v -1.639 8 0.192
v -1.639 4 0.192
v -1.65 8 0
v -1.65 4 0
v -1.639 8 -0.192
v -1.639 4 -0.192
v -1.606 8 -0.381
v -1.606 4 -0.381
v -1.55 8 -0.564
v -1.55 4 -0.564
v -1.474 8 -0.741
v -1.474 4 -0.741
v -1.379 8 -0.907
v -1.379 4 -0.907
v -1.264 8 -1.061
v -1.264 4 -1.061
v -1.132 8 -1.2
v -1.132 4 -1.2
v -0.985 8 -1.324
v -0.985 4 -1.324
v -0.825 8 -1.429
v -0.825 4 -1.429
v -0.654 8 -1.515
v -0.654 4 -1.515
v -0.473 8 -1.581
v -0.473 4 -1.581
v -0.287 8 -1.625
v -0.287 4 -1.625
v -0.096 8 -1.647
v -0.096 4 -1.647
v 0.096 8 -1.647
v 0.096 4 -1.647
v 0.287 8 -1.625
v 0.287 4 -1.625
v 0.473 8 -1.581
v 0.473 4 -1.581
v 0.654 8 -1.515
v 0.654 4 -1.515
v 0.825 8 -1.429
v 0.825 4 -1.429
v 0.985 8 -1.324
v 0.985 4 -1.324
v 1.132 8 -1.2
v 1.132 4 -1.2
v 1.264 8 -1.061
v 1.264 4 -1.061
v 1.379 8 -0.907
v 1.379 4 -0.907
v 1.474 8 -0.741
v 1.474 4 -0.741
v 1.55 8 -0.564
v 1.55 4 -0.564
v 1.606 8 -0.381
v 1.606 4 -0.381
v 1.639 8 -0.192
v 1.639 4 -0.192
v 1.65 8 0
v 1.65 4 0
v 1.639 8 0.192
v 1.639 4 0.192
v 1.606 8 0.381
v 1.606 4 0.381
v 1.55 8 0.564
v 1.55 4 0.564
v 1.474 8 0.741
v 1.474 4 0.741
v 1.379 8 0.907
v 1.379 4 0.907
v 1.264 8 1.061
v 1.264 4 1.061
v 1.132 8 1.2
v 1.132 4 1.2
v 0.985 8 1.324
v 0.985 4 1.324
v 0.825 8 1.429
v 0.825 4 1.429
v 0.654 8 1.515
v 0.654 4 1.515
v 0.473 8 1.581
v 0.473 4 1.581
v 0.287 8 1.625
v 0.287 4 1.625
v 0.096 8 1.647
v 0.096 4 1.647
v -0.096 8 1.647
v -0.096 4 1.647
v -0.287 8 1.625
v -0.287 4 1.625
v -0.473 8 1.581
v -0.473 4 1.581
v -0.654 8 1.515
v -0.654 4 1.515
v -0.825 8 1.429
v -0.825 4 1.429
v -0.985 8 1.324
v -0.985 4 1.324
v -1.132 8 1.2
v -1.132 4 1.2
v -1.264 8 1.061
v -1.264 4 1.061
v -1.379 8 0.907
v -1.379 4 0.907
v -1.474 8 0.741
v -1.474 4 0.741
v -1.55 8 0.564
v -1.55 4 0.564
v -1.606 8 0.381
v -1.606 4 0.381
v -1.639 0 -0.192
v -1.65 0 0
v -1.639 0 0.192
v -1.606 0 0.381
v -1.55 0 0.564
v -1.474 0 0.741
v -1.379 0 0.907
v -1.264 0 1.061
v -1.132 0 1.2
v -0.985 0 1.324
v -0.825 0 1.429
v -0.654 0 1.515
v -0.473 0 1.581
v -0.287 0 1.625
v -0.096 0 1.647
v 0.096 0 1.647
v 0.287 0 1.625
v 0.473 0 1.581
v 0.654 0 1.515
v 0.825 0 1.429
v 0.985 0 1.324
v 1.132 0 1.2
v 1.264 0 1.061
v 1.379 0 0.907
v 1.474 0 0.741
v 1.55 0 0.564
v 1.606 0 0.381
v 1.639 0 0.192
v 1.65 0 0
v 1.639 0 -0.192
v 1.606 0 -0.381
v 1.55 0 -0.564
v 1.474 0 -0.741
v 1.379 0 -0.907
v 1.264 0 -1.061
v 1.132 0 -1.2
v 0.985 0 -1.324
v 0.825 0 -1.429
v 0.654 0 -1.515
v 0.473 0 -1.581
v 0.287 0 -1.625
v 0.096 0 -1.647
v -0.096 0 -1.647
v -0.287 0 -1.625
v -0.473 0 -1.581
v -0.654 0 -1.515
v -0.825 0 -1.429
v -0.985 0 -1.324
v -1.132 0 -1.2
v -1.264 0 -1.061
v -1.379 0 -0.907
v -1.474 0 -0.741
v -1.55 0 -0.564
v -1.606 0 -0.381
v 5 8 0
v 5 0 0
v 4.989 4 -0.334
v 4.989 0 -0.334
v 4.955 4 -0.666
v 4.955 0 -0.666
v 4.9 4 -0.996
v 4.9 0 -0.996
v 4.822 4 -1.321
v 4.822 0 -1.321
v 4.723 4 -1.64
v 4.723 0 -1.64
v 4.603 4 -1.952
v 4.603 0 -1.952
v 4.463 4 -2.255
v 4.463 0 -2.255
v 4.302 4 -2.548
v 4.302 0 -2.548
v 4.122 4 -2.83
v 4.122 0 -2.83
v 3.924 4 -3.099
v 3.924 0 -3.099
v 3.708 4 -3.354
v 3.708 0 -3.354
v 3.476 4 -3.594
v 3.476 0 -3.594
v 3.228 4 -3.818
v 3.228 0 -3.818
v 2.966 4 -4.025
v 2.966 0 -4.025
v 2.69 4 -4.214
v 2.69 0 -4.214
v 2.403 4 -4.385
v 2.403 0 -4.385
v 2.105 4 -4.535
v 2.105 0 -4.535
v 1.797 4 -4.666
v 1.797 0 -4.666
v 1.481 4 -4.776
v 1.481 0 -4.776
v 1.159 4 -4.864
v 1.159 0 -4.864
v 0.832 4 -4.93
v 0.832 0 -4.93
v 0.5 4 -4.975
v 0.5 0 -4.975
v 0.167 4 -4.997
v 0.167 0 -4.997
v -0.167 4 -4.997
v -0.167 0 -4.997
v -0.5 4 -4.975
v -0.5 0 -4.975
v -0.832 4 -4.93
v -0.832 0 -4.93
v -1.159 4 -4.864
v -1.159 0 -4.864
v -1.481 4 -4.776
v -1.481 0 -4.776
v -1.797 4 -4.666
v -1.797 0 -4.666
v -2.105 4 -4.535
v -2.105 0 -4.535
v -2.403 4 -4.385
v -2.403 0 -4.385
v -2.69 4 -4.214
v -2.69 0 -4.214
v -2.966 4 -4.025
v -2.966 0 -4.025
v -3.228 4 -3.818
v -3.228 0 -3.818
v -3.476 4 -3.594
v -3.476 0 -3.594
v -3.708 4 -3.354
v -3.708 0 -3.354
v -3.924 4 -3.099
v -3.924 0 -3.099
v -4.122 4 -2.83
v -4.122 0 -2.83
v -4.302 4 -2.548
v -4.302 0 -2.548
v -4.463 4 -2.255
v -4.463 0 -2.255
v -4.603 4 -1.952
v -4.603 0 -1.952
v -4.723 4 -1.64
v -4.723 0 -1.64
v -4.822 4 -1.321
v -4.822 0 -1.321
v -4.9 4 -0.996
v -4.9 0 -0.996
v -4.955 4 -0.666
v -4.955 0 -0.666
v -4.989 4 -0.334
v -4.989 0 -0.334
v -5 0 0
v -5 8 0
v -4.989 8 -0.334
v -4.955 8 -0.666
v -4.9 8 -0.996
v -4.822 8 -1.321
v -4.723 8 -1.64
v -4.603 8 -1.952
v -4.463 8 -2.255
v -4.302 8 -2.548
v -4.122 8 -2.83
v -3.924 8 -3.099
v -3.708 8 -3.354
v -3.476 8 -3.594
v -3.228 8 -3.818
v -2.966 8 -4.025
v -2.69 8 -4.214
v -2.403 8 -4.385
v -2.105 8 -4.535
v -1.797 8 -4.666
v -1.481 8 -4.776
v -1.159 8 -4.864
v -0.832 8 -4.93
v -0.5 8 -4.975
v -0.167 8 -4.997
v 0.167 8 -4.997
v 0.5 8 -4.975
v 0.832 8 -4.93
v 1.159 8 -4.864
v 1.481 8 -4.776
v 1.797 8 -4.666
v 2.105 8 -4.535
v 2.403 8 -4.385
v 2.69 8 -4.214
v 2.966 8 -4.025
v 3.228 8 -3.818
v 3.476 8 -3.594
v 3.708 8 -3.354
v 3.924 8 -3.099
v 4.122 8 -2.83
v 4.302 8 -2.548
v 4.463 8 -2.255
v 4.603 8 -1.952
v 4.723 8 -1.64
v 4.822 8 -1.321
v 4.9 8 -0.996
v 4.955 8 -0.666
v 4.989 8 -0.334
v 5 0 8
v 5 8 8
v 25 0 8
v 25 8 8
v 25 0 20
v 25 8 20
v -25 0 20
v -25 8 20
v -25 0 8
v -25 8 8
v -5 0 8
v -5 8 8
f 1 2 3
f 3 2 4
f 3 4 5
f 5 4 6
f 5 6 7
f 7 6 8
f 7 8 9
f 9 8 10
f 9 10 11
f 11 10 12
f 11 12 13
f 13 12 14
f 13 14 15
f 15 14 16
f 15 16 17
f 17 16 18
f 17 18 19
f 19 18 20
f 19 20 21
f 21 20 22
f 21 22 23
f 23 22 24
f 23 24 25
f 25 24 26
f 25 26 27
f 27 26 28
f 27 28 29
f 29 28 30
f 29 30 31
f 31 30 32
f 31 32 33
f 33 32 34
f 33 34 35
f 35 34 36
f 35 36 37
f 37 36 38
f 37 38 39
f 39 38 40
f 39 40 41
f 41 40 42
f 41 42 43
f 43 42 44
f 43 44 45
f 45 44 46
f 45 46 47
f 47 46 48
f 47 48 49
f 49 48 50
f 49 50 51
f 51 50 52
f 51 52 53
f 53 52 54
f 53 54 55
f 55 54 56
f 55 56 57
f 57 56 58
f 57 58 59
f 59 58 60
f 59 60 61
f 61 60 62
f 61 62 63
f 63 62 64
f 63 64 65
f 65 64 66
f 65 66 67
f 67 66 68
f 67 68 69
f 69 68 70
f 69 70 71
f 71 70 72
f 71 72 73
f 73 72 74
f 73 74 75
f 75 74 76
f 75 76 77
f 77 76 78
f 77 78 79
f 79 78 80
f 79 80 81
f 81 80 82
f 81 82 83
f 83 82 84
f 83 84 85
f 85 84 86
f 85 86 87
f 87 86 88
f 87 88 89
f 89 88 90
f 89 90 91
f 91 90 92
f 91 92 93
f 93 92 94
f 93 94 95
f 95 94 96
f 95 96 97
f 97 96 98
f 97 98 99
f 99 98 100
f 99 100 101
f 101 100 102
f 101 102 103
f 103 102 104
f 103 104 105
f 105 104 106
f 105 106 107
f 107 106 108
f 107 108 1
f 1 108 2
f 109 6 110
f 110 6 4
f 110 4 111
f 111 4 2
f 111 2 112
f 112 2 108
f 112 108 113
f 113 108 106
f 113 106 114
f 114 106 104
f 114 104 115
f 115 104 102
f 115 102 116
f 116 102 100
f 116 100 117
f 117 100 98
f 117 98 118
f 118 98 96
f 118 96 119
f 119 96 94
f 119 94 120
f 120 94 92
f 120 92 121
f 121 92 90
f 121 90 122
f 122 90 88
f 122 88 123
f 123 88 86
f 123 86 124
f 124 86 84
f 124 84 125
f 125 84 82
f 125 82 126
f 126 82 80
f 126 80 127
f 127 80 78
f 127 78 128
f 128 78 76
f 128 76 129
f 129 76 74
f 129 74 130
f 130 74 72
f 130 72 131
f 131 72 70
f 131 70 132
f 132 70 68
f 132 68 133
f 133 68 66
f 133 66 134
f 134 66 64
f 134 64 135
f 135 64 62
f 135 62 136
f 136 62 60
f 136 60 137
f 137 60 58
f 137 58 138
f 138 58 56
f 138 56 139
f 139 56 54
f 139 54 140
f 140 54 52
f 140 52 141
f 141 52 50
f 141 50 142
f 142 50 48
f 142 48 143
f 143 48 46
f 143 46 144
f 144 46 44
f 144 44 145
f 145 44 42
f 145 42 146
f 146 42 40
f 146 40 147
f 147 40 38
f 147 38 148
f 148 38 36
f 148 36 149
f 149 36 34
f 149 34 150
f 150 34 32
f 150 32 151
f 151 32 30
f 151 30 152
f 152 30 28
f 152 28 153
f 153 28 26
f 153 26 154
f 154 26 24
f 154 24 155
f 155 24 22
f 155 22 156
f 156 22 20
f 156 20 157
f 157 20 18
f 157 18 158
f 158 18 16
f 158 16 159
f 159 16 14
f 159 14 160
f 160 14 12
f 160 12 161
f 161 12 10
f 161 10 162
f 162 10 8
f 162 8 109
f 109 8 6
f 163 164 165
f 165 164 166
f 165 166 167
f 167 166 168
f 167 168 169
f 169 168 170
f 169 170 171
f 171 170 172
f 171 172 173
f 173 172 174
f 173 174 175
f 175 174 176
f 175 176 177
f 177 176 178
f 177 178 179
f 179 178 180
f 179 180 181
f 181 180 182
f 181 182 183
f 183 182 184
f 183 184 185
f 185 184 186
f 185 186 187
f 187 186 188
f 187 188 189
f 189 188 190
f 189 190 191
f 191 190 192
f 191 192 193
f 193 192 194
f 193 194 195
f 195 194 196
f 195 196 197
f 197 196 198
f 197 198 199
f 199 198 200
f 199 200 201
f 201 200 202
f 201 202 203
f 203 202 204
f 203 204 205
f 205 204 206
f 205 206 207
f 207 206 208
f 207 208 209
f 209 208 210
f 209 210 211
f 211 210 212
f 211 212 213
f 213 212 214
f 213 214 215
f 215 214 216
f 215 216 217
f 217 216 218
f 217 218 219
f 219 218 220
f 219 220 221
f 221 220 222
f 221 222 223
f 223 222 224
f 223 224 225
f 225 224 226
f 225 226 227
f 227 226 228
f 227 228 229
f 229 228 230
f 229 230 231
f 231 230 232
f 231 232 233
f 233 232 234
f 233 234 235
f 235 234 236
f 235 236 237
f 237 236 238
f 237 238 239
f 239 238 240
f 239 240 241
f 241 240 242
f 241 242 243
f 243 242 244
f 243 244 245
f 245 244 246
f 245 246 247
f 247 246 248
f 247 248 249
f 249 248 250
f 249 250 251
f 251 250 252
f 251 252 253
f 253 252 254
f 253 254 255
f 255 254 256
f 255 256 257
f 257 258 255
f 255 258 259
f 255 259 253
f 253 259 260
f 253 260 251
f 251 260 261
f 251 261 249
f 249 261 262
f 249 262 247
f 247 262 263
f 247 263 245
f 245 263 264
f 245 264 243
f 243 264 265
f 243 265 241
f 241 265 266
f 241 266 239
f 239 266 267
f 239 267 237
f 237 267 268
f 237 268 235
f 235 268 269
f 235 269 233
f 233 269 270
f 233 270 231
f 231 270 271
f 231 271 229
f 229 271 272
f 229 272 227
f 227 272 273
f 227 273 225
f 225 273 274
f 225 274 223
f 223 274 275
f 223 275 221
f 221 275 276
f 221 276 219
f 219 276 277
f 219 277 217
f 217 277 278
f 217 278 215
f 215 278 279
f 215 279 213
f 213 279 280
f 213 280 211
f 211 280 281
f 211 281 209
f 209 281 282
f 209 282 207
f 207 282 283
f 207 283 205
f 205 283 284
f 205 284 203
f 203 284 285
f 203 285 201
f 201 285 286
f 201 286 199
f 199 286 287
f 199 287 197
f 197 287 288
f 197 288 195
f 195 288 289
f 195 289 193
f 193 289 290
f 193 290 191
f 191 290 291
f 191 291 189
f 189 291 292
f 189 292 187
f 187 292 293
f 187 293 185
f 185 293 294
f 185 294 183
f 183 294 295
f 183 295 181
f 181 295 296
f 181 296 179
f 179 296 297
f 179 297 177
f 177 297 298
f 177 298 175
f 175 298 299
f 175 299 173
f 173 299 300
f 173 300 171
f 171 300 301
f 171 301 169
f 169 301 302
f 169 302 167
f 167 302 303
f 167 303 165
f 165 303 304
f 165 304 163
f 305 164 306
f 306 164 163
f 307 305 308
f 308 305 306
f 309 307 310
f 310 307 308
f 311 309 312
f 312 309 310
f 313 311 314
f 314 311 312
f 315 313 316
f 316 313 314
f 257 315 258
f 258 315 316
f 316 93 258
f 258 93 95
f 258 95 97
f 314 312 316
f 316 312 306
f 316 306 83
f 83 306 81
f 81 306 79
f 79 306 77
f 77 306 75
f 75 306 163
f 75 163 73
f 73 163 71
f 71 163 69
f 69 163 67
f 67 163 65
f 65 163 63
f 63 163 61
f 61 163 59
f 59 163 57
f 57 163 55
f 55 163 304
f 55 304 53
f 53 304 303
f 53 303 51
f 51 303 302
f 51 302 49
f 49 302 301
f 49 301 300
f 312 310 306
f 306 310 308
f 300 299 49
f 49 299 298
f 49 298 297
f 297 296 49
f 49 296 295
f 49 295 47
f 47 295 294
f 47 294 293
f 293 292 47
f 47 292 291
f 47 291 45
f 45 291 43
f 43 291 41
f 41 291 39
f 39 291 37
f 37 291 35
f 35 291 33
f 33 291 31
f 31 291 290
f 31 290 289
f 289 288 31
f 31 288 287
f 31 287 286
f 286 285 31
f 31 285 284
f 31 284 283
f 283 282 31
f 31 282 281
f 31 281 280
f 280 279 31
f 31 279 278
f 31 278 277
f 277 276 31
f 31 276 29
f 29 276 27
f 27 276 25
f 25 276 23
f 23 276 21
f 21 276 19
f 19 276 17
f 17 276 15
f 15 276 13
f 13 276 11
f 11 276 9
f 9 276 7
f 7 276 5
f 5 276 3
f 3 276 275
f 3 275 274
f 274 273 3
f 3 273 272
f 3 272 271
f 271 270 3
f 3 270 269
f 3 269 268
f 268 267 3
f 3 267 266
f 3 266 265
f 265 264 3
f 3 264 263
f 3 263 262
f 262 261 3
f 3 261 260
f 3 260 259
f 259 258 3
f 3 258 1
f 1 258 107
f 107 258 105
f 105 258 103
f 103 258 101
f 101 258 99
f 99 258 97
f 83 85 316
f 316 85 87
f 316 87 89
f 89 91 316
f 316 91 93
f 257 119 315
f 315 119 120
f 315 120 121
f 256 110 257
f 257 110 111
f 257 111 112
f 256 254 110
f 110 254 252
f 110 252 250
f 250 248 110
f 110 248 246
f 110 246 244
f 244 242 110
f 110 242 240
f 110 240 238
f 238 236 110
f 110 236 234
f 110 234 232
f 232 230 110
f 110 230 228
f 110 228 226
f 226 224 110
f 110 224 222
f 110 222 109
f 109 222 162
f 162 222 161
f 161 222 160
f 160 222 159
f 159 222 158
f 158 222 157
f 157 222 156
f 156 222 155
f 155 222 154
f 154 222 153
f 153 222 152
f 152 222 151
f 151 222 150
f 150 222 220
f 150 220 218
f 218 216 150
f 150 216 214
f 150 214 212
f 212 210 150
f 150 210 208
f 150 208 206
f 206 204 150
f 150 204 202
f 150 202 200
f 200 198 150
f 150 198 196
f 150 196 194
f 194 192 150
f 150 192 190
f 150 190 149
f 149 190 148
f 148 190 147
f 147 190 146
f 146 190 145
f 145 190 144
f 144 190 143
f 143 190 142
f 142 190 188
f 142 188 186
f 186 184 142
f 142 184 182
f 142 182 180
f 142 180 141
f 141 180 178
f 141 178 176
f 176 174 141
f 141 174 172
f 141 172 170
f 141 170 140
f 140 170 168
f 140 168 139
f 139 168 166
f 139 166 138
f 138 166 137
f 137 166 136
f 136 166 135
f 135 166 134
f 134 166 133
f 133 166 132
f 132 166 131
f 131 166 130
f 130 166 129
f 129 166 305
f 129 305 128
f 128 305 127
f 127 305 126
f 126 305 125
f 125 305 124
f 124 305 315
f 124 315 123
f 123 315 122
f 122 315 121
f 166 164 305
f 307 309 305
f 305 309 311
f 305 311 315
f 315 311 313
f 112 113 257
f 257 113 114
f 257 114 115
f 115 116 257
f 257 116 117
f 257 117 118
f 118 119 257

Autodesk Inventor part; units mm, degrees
ref_plane "YZ Plane" through (0, 0, 0) normal (1, 0, 0) x (0, 1, 0)
ref_plane "XZ Plane" through (0, 0, 0) normal (0, 1, 0) x (-1, 0, 0)
ref_plane "XY Plane" through (0, 0, 0) normal (0, 0, 1) x (1, 0, 0)
sketch "Sketch1" plane through (0, 0, 0) normal (0, 1, 0) x (-1, 0, 0)
  circle A0 centre (0, 0) radius 1.65
  line L0 (5, -5) -> (-5, -5)
  line L1 (-5, -5) -> (-5, 20)
  line L2 (-5, 20) -> (5, 20)
  line L3 (5, 20) -> (5, -5)
  circle A1 centre (0, 0) radius 5
  line L4 (25, 8) -> (-25, 8)
  line L5 (-25, 8) -> (-25, 20)
  line L6 (-25, 20) -> (25, 20)
  line L7 (25, 20) -> (25, 8)
  point P0 (-5, 0)
  point P1 (5, 0)
  point P2 (5, 8)
  point P3 (-5, 8)
  dimension "d0" = 3.3
  dimension "d1" = 10
  dimension "d2" = 20
  dimension "d5" = 12
  dimension "d6" = 20
  dimension "d7" = 20
extrude "Extrusion1" add sketch "Sketch1" along normal blind 8 contours A1 | A1 L1 L4 L3 | L4 L1 L2 L3 | L3 L6 L7 L4 | L4 L5 L6 L1
properties part number "Fix_pin"
